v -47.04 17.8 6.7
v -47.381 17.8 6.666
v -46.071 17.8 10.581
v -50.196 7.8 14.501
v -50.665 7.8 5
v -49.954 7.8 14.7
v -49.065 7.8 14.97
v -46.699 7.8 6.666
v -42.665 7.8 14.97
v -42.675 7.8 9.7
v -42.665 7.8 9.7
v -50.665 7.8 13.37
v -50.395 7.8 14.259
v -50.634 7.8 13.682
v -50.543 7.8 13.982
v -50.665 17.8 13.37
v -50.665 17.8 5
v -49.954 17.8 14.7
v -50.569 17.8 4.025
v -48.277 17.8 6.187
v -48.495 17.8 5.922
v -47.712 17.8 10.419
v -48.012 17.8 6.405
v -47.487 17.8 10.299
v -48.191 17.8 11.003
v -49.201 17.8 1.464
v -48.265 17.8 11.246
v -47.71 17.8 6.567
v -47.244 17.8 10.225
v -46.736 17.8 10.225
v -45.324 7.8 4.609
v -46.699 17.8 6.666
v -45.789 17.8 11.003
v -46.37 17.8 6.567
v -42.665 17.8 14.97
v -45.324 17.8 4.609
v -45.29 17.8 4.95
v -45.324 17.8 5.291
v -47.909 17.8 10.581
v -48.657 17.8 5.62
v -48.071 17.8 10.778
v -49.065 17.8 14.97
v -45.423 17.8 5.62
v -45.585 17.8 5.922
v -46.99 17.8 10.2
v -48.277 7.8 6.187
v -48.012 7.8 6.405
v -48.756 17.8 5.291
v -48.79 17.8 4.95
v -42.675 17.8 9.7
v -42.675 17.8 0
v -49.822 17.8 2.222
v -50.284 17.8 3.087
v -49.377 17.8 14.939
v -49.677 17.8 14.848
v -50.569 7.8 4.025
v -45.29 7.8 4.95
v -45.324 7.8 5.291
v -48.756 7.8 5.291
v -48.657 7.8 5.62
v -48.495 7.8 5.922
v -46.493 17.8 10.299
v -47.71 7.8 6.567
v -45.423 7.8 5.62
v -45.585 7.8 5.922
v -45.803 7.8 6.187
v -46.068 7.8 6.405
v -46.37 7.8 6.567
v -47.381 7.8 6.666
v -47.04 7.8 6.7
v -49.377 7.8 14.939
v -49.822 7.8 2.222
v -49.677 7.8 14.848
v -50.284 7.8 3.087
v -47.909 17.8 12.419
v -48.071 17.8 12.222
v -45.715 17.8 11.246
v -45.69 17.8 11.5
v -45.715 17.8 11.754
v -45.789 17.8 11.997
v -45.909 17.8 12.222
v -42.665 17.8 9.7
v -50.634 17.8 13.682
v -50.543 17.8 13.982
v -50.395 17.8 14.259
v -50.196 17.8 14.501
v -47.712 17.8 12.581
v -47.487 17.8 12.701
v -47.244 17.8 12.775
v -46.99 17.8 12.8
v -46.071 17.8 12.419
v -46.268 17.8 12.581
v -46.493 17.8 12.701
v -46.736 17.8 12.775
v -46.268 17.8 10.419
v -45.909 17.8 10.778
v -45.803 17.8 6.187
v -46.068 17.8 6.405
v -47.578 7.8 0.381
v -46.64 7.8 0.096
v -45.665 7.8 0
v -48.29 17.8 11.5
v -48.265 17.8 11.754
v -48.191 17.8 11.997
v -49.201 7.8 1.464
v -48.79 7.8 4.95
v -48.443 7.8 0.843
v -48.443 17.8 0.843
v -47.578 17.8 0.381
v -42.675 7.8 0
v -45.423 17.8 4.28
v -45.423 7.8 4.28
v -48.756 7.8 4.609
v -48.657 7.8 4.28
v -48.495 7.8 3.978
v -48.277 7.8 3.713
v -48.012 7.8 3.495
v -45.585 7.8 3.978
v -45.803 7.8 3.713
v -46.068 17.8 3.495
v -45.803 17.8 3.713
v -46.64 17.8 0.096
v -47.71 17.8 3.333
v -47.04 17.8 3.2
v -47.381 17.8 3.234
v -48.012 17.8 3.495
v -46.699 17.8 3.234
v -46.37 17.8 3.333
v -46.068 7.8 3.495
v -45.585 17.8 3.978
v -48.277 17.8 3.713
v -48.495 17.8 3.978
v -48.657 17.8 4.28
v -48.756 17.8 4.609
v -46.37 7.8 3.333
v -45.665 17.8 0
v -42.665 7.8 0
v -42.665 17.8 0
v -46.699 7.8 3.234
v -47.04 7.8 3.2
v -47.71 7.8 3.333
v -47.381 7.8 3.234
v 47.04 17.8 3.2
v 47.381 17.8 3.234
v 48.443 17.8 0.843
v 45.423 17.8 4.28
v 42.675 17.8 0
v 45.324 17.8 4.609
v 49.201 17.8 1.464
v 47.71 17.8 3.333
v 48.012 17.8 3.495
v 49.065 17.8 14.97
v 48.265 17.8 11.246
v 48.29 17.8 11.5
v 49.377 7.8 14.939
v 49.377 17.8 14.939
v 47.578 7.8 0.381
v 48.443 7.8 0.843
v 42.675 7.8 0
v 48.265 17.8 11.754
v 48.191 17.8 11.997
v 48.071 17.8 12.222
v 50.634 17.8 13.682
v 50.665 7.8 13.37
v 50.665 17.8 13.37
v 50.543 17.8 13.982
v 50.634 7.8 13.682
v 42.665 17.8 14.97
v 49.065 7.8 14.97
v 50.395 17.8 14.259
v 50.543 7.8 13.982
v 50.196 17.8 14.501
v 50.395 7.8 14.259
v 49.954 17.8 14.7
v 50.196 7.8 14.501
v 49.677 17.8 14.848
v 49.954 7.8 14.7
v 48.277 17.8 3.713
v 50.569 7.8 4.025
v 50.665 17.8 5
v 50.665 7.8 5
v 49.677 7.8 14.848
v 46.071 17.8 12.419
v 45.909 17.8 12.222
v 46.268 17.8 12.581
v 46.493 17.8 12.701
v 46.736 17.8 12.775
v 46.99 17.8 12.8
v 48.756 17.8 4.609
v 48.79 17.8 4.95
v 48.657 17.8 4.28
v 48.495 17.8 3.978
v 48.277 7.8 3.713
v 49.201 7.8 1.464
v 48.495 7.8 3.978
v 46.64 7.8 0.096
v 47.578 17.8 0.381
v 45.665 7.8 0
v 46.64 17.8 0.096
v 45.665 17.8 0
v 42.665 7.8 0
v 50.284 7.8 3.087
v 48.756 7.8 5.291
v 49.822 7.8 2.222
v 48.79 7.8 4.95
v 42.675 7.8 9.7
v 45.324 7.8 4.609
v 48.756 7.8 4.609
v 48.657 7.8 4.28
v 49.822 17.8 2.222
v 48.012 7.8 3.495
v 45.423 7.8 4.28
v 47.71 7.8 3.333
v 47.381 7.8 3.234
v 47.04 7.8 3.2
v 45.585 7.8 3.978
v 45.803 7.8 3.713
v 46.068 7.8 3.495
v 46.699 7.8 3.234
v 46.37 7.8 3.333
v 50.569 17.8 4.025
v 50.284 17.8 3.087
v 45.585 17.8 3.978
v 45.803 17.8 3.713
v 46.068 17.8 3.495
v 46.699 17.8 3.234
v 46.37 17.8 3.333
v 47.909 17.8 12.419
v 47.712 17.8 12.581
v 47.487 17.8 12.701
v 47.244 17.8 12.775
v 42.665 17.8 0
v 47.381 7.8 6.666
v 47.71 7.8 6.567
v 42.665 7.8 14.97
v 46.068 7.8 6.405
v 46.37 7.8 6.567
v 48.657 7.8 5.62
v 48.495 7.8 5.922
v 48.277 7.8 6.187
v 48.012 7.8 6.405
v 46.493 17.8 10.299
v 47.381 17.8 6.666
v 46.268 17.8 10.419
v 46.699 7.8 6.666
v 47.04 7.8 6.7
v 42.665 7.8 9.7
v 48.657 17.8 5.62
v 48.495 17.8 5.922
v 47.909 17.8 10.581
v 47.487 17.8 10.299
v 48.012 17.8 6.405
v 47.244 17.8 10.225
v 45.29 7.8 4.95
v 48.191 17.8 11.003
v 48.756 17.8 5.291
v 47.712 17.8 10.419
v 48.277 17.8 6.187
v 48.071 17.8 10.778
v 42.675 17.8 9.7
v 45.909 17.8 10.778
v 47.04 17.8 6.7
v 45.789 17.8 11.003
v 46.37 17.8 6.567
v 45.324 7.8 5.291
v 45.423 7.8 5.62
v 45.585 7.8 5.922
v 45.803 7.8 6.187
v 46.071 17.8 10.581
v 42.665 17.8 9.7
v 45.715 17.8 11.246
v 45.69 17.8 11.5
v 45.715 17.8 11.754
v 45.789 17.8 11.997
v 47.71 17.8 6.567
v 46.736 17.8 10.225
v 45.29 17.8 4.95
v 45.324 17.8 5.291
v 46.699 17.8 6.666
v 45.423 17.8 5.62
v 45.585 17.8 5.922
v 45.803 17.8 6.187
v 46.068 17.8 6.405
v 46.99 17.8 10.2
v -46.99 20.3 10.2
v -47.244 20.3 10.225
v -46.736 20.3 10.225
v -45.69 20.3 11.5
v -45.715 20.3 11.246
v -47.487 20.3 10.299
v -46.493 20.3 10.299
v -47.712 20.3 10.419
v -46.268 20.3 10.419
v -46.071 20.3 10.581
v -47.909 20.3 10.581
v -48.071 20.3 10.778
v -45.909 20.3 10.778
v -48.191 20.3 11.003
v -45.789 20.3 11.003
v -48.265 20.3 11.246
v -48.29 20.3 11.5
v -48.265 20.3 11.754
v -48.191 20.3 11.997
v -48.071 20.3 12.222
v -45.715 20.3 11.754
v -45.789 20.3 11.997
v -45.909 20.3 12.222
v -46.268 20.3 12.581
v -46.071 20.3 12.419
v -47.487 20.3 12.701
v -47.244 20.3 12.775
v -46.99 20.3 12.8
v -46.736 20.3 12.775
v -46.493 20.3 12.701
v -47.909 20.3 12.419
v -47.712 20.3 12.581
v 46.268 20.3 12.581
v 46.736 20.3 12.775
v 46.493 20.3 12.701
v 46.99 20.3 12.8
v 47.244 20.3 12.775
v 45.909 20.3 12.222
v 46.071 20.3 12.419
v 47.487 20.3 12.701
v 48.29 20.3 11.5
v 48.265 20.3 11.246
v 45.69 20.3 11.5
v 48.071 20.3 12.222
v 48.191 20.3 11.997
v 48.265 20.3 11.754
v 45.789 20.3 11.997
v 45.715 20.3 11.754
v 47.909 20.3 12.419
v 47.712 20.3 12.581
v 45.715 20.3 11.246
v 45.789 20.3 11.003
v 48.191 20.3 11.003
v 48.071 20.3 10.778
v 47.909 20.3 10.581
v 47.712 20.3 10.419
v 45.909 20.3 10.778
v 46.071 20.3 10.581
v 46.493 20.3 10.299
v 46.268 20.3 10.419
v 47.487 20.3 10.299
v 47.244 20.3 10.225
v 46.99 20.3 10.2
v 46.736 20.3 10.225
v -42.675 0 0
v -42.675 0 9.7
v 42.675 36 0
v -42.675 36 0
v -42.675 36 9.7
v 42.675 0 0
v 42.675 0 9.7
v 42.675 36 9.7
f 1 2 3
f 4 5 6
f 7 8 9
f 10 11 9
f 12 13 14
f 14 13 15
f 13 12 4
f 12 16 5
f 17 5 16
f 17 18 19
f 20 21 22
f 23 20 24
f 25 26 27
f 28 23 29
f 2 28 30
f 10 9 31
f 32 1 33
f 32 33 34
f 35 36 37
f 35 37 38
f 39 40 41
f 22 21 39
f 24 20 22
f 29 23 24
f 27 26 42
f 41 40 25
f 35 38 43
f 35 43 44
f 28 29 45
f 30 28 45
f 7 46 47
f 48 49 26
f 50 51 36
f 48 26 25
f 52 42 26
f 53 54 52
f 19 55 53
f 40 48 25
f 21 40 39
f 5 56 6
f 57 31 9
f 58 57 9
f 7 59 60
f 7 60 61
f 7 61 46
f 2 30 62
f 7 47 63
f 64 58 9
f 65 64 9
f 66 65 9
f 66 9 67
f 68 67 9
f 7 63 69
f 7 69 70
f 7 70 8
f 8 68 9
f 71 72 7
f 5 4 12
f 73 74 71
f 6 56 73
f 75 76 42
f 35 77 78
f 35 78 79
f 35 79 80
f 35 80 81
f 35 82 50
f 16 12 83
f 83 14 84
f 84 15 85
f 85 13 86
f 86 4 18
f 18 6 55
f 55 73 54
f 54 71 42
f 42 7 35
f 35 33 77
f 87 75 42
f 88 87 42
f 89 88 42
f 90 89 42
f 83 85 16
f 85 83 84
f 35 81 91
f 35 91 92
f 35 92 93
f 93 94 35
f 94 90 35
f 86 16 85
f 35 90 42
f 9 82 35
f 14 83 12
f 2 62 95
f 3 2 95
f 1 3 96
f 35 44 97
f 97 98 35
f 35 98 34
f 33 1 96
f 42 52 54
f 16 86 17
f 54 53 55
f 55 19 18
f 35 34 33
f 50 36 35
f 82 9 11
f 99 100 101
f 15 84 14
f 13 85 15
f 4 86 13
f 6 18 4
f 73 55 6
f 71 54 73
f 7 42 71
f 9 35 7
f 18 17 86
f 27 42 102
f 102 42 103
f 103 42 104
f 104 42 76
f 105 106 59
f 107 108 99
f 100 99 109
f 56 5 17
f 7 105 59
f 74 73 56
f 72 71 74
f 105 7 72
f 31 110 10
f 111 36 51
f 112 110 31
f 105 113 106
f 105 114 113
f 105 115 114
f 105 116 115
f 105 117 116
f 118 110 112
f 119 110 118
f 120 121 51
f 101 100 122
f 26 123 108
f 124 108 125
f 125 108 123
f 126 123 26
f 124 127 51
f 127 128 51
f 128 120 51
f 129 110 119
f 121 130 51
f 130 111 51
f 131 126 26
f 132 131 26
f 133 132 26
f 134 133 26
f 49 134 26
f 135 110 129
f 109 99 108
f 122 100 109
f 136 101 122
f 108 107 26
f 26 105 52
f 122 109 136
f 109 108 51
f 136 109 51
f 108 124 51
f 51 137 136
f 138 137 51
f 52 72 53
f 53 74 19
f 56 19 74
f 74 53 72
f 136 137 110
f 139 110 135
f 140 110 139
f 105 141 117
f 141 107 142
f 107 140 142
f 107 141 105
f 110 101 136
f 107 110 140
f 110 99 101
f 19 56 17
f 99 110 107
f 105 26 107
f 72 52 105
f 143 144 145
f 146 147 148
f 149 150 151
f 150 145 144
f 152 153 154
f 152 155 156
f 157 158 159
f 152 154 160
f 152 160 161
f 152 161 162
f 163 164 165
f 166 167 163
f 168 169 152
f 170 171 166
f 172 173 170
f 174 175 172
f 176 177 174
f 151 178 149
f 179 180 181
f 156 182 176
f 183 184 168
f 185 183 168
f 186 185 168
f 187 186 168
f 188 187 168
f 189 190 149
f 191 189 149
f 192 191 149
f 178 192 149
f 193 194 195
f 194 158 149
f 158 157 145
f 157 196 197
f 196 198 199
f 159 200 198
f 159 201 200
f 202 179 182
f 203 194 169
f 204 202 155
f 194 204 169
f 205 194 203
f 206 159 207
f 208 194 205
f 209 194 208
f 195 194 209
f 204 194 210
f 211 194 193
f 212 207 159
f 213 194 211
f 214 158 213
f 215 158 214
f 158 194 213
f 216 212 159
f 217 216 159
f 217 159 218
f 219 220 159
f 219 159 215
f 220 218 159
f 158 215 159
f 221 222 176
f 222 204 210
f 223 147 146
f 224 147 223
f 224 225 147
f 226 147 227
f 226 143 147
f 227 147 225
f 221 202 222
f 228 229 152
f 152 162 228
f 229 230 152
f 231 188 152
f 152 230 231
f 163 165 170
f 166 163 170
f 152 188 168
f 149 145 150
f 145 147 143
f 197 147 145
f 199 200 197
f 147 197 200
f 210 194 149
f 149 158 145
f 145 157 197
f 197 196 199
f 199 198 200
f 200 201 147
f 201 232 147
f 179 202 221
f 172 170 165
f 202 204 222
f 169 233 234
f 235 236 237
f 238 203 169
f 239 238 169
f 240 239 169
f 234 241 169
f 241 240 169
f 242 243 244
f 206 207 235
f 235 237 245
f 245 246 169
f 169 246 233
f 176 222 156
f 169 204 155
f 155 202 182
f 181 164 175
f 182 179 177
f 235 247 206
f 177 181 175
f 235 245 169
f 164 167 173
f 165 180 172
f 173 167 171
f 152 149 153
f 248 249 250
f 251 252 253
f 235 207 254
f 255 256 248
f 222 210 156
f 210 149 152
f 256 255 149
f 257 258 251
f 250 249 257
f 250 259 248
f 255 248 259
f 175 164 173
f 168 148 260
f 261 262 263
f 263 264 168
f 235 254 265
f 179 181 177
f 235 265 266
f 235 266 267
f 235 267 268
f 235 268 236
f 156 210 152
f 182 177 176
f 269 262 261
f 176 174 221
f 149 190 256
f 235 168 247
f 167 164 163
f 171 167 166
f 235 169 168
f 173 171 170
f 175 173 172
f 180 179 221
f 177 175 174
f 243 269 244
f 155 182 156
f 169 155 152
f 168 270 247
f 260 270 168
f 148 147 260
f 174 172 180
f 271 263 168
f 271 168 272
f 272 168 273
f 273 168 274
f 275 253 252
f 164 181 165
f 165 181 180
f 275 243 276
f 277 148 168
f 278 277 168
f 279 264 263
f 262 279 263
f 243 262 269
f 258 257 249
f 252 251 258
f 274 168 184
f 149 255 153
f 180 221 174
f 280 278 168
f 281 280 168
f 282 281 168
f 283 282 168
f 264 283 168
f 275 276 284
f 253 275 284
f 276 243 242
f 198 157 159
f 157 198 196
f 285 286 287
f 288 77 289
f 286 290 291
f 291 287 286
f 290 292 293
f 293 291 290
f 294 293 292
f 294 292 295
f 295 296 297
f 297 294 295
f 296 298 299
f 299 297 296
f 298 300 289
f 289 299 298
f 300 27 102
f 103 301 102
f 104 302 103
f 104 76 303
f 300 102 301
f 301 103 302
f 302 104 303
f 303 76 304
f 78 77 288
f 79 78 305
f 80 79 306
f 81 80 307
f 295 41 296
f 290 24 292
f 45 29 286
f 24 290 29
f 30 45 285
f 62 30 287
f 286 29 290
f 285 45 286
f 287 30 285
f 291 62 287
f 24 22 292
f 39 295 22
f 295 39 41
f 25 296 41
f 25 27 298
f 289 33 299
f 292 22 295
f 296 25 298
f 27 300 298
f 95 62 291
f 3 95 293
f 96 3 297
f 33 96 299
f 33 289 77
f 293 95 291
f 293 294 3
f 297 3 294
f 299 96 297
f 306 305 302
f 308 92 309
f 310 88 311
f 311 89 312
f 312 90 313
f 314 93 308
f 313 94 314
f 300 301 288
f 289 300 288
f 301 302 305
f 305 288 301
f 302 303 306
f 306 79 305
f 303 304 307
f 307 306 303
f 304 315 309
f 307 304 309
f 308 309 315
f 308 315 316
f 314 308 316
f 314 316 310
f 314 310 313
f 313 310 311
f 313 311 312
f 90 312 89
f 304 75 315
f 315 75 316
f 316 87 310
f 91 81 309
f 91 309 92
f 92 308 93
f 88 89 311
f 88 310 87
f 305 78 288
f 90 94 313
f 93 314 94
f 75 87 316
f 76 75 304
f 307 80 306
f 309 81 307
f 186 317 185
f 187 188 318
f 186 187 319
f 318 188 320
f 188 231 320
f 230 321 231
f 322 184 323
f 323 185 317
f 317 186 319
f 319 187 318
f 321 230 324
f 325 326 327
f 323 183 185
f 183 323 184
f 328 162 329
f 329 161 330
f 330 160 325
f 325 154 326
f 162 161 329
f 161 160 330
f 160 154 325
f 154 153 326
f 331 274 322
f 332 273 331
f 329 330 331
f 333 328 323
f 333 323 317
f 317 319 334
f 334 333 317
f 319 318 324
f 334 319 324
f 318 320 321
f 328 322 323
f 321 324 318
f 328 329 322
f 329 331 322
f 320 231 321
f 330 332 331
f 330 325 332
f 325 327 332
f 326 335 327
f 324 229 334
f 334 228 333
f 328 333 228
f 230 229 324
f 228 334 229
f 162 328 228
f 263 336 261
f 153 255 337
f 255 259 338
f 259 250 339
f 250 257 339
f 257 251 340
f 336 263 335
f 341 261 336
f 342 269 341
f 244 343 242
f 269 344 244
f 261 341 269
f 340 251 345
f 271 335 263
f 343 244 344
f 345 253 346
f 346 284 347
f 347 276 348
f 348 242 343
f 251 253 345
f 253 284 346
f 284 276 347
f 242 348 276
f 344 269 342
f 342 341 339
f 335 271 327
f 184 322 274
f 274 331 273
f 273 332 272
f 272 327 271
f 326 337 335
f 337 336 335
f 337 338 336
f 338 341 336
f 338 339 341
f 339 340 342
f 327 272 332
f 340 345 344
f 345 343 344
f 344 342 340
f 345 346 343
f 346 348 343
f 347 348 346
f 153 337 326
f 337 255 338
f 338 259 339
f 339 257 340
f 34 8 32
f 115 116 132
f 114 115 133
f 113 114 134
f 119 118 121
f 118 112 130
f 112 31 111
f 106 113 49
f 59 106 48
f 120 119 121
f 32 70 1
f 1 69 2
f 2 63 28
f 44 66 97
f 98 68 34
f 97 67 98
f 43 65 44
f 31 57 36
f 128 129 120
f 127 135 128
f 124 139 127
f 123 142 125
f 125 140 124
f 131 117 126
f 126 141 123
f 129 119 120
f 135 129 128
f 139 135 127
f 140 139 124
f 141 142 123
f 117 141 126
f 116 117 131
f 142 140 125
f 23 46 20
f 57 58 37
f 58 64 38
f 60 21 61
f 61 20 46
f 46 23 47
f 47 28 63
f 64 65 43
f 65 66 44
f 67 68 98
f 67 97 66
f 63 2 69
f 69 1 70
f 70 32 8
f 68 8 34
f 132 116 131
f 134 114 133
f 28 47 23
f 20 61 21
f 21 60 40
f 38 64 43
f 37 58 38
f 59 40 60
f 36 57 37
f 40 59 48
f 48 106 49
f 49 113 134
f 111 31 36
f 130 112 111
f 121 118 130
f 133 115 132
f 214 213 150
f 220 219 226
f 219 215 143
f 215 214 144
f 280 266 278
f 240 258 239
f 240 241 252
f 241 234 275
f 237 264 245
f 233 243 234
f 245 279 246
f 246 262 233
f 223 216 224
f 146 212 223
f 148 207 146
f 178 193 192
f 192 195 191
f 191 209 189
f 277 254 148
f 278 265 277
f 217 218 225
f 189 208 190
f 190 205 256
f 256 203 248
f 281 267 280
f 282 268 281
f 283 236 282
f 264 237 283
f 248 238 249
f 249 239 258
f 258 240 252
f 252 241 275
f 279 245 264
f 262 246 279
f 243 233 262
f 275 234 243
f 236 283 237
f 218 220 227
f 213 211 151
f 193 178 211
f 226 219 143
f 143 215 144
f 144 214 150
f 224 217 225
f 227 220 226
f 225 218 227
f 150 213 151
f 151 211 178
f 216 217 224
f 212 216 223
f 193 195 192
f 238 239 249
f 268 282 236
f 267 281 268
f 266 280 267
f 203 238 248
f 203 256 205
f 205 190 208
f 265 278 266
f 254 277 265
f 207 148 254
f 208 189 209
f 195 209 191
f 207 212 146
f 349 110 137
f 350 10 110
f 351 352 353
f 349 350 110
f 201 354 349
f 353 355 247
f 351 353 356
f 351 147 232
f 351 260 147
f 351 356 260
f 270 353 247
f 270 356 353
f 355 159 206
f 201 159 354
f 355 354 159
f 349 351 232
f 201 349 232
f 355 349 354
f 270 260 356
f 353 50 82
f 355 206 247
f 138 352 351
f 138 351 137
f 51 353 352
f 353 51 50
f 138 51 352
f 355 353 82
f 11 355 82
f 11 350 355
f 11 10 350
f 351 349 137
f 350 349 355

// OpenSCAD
$fn = $preview ? 16 : 32;

intersectMargin=0.01;

module connector(includeScrew){
    connectorMainPartWidth = 85 + 0.35;
    connectorMainPartHeight = 9.7;
    
    connectorMaxDepth = 17.8 + 18.2;
    connectorMaxHeight = 14.97;
    connectorMaxWidth = 101 + 0.35;
    
    translate([-connectorMainPartWidth/2,0,0])
        cube([connectorMainPartWidth,connectorMaxDepth,connectorMainPartHeight]);
    
    module ear(){
        earWidth = (connectorMaxWidth - connectorMainPartWidth) / 2;
        earDepth = 10;
        earHeight = 14.97;
        earPos = 17.8-earDepth;
        
        holeDiameter = 3.5;
        holeInnerDistance = 90.6; // measured by hand
        holeCenterDistance = holeInnerDistance + holeDiameter;
        
        nubDiameter = 2.6;
        nubLength = 2.5;
        nubOuterDistance = 96.6; // measured by hand
        nubCenterDistance = nubOuterDistance - nubDiameter;
        
        earRadiusTop = 1.6; // measured by hand
        earRadiusBottom = 5; // measured by hand
        
        module earShape(){
            intersection(){
                square([earWidth, earHeight]);
                translate([earWidth-earRadiusBottom,earRadiusBottom]){
                        square(10);
                        translate([-10,-10])
                            square([10,20]);
                        circle(r=earRadiusBottom);
                }
                
                translate([earWidth-earRadiusTop,earHeight - earRadiusTop]){
                    translate([-10,-10+earRadiusTop])
                        square(10);
                    translate([-10+earRadiusTop,-20])
                        square([10,20]);
                    circle(r=earRadiusTop);
                }
            }
        }
        
        translate([connectorMainPartWidth/2 - intersectMargin,earPos,0]){            
            holePositionX = holeCenterDistance/2 - connectorMainPartWidth/2;
            holePositionY = 3.2 + holeDiameter/2; // measured by hand
            
            nubPositionX = nubCenterDistance/2 - connectorMainPartWidth/2;
            nubPositionY = 12.8 - nubDiameter/2; // measured by hand
            nubPositionZ = earDepth;
            
            difference(){
                union(){
                    translate([0,earDepth,0])
                        rotate([90,0,0])
                        linear_extrude(earDepth)
                        earShape();
                    
                    translate([nubPositionX,nubPositionZ,nubPositionY])
                        rotate([-90,0,0])
                        cylinder(nubLength, d=nubDiameter);
                    
                    if(includeScrew)
                    {
                        translate([holePositionX,0,holePositionY])
                            rotate([-90,0,0])
                            cylinder(80,d=holeDiameter,center=true);
                    }
                }
                if(!includeScrew)
                {
                    translate([holePositionX,0,holePositionY])
                        rotate([-90,0,0])
                        cylinder(40,d=holeDiameter,center=true);
                }
            }
        }
    }
    
    
    ear();
    mirror([1,0,0])
        ear();
}

connector(false);

//psuWidth = 105; // verify
//psuHeight = 40.8; // verify
//psuDepth = 281; // verify
//
//psuConnectorEarDistance = 7.8 + intersectMargin; // verify
//
//module psu(){
//    translate([-psuWidth/2,-psuDepth + psuConnectorEarDistance,0])
//        cube([psuWidth,psuDepth,psuHeight]);
//}

//if($preview && false){
////color("grey", 0.5)
//    //psu();
//color([0.4, 0.4, 0.4])
//    connector();
//}
//partDepth = 50;
//
//partHoleWidth = psuWidth - 18;
//partHoleDepth = partDepth - 2;
//partHoleHeight = psuHeight - 4;
//
//module part(){
//    difference(){
//        union(){
//            translate([-psuWidth/2,psuConnectorEarDistance,intersectMargin])
//                cube([psuWidth,partDepth,psuHeight]);
//        }
//        translate([-partHoleWidth/2, psuConnectorEarDistance - intersectMargin, (psuHeight / 2) - partHoleHeight/2])
//            cube([partHoleWidth,partHoleDepth,partHoleHeight]);
//        
//        minkowski(){
//            connector();
//            if(!$preview)
//                sphere(0.1);
//        }
//    }
//}
//
//part();
